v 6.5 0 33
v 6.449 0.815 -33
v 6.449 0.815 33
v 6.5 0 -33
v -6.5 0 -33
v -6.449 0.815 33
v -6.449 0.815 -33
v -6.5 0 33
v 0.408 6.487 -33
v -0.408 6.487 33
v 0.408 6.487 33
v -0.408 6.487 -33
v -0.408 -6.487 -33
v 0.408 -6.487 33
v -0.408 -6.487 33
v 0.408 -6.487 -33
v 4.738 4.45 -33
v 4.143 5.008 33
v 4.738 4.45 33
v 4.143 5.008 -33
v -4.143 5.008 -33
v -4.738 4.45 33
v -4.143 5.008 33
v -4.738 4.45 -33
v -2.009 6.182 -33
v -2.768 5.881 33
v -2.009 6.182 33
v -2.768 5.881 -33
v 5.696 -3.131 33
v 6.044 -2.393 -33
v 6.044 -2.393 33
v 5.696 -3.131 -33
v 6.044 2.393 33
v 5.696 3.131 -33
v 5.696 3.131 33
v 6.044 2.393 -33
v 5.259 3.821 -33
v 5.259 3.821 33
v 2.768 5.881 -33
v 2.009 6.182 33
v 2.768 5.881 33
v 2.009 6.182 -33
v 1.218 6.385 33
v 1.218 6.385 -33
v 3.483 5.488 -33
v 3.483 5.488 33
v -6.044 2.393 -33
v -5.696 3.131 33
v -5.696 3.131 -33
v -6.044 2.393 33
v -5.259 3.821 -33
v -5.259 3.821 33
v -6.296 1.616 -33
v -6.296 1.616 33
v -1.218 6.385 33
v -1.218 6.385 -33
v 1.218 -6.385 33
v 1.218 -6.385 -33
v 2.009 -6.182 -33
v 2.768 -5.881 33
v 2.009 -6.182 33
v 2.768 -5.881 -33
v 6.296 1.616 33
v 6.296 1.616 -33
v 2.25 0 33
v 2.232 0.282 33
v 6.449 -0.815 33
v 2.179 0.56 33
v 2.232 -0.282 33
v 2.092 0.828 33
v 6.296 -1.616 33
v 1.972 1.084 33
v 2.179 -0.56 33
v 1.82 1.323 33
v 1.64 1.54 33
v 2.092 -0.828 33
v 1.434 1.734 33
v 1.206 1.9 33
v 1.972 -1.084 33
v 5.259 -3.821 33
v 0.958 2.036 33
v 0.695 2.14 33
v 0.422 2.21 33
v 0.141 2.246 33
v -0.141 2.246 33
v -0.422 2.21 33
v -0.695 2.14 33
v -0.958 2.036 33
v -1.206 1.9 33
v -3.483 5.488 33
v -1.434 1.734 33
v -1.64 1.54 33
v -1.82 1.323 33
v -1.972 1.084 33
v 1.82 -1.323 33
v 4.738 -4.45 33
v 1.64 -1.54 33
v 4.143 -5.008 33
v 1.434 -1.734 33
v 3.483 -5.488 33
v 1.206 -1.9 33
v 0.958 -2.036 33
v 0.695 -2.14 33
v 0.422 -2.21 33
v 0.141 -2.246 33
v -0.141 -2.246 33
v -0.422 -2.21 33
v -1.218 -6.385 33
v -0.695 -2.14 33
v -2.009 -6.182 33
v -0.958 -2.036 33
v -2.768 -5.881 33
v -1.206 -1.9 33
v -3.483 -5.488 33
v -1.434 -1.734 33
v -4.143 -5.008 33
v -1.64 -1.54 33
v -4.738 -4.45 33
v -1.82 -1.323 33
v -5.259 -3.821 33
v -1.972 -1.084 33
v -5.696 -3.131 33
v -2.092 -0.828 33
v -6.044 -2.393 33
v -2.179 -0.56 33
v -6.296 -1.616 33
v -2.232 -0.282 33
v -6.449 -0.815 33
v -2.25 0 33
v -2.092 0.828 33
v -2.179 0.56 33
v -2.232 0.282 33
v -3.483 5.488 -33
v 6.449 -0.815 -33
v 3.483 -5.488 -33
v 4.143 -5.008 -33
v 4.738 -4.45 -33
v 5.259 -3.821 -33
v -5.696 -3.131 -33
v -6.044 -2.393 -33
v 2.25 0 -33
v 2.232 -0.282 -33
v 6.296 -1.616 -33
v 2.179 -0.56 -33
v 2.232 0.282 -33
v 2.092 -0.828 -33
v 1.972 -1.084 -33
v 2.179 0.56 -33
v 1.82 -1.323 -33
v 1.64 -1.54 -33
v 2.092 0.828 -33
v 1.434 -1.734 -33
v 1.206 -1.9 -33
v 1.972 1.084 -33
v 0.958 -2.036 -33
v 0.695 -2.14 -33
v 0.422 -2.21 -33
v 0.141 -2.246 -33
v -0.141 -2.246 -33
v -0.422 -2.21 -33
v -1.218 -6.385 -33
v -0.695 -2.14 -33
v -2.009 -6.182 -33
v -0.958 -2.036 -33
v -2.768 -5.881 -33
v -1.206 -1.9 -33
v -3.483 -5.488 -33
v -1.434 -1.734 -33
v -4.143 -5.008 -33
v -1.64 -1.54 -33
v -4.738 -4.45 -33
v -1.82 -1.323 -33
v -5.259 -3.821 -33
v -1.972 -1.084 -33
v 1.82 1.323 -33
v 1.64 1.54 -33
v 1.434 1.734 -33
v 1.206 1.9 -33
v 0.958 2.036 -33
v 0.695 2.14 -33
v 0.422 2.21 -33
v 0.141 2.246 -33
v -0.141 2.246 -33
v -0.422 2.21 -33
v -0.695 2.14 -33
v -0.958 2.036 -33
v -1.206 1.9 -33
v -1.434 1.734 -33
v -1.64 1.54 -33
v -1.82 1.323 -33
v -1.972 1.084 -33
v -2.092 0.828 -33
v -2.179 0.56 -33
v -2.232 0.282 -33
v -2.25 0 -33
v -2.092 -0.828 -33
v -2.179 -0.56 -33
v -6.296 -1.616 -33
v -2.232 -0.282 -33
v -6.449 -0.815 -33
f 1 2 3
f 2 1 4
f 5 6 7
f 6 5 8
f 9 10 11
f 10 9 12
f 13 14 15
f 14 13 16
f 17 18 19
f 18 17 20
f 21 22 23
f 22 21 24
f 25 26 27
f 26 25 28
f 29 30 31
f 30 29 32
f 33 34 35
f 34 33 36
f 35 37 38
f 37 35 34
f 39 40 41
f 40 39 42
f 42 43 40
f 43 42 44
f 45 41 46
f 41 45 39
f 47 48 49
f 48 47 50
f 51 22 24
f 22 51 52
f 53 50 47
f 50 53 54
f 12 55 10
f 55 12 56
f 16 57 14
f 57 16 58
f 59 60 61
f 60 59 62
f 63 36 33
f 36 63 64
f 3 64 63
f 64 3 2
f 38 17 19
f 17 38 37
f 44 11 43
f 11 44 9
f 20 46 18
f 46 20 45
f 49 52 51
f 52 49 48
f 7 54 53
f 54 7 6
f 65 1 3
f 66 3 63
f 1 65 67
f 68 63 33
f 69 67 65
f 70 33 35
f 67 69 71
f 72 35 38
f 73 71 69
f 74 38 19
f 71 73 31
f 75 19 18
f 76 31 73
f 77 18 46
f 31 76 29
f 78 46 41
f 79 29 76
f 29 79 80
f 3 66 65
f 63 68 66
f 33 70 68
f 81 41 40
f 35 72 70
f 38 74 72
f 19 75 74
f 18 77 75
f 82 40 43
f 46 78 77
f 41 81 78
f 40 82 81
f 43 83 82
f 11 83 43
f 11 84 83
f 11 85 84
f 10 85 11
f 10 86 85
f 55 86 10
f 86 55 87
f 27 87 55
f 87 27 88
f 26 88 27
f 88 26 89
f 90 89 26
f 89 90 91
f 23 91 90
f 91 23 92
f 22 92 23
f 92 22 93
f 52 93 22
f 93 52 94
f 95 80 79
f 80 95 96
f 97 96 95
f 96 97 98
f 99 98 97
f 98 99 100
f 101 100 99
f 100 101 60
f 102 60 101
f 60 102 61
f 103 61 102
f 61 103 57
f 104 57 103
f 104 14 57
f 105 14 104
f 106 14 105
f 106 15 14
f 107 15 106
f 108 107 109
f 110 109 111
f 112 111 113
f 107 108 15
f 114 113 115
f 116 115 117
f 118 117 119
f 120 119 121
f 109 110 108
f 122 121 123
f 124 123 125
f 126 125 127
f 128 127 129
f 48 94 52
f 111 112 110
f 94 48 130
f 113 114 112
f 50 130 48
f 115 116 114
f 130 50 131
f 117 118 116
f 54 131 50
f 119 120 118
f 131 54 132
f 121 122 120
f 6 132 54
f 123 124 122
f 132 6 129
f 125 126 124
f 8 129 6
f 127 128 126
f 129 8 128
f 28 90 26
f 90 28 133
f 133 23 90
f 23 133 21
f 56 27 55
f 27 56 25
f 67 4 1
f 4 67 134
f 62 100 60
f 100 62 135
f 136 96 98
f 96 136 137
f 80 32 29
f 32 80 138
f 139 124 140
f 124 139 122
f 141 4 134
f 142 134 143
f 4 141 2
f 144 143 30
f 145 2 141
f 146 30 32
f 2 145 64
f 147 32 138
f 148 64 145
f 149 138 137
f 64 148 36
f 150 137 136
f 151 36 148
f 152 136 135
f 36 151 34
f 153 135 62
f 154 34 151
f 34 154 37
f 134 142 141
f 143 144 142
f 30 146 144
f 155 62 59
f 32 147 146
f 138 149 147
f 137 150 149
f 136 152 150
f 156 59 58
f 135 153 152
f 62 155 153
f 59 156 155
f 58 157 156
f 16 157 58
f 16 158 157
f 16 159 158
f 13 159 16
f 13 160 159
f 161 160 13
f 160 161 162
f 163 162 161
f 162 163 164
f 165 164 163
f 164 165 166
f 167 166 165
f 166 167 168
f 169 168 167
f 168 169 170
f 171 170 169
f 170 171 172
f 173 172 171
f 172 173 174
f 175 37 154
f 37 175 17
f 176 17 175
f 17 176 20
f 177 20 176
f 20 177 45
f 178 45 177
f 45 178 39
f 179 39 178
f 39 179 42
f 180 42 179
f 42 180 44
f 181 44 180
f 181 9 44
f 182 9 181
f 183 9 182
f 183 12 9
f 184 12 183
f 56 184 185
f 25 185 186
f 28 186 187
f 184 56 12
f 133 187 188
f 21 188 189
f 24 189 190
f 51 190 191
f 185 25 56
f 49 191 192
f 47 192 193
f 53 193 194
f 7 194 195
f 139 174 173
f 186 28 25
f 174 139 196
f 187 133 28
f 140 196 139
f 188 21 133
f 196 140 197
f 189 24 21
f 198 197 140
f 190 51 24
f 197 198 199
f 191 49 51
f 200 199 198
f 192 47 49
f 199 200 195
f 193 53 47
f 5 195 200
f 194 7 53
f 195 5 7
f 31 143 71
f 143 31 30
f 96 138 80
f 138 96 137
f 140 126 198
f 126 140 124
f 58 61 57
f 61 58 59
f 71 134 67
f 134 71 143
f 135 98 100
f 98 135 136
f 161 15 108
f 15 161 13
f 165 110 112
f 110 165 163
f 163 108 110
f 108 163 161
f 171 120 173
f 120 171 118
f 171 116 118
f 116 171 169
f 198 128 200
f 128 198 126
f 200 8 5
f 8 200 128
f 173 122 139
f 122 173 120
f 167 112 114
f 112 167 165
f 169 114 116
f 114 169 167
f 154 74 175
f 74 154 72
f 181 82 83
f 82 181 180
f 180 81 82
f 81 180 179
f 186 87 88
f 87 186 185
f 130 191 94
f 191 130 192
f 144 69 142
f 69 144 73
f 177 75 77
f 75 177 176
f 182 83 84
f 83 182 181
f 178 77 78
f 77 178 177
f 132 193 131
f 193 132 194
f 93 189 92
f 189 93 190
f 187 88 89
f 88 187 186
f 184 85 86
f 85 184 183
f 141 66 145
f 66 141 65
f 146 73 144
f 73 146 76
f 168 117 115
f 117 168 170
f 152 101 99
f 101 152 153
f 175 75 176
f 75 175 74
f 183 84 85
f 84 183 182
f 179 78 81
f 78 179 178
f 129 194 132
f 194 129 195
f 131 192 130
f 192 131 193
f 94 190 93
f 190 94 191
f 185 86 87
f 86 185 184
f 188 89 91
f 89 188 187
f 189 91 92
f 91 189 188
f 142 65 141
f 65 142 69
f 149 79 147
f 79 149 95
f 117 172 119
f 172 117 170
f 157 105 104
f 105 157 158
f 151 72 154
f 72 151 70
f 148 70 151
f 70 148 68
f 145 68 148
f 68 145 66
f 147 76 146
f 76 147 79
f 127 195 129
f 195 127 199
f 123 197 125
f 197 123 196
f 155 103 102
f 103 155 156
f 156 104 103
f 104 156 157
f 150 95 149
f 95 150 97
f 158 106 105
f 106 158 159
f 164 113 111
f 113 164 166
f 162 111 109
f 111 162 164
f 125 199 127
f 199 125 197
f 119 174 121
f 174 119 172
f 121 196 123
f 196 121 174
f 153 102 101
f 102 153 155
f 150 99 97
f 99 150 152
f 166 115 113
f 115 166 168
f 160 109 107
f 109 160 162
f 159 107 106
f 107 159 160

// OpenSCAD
$fn = 50;


difference() {
	union() {
		translate(v = [0, 0, -33.0000000000]) {
			cylinder(h = 66, r = 6.5000000000);
		}
	}
	union() {
		translate(v = [0, 0, -100.0000000000]) {
			cylinder(h = 200, r = 2.2500000000);
		}
	}
}
